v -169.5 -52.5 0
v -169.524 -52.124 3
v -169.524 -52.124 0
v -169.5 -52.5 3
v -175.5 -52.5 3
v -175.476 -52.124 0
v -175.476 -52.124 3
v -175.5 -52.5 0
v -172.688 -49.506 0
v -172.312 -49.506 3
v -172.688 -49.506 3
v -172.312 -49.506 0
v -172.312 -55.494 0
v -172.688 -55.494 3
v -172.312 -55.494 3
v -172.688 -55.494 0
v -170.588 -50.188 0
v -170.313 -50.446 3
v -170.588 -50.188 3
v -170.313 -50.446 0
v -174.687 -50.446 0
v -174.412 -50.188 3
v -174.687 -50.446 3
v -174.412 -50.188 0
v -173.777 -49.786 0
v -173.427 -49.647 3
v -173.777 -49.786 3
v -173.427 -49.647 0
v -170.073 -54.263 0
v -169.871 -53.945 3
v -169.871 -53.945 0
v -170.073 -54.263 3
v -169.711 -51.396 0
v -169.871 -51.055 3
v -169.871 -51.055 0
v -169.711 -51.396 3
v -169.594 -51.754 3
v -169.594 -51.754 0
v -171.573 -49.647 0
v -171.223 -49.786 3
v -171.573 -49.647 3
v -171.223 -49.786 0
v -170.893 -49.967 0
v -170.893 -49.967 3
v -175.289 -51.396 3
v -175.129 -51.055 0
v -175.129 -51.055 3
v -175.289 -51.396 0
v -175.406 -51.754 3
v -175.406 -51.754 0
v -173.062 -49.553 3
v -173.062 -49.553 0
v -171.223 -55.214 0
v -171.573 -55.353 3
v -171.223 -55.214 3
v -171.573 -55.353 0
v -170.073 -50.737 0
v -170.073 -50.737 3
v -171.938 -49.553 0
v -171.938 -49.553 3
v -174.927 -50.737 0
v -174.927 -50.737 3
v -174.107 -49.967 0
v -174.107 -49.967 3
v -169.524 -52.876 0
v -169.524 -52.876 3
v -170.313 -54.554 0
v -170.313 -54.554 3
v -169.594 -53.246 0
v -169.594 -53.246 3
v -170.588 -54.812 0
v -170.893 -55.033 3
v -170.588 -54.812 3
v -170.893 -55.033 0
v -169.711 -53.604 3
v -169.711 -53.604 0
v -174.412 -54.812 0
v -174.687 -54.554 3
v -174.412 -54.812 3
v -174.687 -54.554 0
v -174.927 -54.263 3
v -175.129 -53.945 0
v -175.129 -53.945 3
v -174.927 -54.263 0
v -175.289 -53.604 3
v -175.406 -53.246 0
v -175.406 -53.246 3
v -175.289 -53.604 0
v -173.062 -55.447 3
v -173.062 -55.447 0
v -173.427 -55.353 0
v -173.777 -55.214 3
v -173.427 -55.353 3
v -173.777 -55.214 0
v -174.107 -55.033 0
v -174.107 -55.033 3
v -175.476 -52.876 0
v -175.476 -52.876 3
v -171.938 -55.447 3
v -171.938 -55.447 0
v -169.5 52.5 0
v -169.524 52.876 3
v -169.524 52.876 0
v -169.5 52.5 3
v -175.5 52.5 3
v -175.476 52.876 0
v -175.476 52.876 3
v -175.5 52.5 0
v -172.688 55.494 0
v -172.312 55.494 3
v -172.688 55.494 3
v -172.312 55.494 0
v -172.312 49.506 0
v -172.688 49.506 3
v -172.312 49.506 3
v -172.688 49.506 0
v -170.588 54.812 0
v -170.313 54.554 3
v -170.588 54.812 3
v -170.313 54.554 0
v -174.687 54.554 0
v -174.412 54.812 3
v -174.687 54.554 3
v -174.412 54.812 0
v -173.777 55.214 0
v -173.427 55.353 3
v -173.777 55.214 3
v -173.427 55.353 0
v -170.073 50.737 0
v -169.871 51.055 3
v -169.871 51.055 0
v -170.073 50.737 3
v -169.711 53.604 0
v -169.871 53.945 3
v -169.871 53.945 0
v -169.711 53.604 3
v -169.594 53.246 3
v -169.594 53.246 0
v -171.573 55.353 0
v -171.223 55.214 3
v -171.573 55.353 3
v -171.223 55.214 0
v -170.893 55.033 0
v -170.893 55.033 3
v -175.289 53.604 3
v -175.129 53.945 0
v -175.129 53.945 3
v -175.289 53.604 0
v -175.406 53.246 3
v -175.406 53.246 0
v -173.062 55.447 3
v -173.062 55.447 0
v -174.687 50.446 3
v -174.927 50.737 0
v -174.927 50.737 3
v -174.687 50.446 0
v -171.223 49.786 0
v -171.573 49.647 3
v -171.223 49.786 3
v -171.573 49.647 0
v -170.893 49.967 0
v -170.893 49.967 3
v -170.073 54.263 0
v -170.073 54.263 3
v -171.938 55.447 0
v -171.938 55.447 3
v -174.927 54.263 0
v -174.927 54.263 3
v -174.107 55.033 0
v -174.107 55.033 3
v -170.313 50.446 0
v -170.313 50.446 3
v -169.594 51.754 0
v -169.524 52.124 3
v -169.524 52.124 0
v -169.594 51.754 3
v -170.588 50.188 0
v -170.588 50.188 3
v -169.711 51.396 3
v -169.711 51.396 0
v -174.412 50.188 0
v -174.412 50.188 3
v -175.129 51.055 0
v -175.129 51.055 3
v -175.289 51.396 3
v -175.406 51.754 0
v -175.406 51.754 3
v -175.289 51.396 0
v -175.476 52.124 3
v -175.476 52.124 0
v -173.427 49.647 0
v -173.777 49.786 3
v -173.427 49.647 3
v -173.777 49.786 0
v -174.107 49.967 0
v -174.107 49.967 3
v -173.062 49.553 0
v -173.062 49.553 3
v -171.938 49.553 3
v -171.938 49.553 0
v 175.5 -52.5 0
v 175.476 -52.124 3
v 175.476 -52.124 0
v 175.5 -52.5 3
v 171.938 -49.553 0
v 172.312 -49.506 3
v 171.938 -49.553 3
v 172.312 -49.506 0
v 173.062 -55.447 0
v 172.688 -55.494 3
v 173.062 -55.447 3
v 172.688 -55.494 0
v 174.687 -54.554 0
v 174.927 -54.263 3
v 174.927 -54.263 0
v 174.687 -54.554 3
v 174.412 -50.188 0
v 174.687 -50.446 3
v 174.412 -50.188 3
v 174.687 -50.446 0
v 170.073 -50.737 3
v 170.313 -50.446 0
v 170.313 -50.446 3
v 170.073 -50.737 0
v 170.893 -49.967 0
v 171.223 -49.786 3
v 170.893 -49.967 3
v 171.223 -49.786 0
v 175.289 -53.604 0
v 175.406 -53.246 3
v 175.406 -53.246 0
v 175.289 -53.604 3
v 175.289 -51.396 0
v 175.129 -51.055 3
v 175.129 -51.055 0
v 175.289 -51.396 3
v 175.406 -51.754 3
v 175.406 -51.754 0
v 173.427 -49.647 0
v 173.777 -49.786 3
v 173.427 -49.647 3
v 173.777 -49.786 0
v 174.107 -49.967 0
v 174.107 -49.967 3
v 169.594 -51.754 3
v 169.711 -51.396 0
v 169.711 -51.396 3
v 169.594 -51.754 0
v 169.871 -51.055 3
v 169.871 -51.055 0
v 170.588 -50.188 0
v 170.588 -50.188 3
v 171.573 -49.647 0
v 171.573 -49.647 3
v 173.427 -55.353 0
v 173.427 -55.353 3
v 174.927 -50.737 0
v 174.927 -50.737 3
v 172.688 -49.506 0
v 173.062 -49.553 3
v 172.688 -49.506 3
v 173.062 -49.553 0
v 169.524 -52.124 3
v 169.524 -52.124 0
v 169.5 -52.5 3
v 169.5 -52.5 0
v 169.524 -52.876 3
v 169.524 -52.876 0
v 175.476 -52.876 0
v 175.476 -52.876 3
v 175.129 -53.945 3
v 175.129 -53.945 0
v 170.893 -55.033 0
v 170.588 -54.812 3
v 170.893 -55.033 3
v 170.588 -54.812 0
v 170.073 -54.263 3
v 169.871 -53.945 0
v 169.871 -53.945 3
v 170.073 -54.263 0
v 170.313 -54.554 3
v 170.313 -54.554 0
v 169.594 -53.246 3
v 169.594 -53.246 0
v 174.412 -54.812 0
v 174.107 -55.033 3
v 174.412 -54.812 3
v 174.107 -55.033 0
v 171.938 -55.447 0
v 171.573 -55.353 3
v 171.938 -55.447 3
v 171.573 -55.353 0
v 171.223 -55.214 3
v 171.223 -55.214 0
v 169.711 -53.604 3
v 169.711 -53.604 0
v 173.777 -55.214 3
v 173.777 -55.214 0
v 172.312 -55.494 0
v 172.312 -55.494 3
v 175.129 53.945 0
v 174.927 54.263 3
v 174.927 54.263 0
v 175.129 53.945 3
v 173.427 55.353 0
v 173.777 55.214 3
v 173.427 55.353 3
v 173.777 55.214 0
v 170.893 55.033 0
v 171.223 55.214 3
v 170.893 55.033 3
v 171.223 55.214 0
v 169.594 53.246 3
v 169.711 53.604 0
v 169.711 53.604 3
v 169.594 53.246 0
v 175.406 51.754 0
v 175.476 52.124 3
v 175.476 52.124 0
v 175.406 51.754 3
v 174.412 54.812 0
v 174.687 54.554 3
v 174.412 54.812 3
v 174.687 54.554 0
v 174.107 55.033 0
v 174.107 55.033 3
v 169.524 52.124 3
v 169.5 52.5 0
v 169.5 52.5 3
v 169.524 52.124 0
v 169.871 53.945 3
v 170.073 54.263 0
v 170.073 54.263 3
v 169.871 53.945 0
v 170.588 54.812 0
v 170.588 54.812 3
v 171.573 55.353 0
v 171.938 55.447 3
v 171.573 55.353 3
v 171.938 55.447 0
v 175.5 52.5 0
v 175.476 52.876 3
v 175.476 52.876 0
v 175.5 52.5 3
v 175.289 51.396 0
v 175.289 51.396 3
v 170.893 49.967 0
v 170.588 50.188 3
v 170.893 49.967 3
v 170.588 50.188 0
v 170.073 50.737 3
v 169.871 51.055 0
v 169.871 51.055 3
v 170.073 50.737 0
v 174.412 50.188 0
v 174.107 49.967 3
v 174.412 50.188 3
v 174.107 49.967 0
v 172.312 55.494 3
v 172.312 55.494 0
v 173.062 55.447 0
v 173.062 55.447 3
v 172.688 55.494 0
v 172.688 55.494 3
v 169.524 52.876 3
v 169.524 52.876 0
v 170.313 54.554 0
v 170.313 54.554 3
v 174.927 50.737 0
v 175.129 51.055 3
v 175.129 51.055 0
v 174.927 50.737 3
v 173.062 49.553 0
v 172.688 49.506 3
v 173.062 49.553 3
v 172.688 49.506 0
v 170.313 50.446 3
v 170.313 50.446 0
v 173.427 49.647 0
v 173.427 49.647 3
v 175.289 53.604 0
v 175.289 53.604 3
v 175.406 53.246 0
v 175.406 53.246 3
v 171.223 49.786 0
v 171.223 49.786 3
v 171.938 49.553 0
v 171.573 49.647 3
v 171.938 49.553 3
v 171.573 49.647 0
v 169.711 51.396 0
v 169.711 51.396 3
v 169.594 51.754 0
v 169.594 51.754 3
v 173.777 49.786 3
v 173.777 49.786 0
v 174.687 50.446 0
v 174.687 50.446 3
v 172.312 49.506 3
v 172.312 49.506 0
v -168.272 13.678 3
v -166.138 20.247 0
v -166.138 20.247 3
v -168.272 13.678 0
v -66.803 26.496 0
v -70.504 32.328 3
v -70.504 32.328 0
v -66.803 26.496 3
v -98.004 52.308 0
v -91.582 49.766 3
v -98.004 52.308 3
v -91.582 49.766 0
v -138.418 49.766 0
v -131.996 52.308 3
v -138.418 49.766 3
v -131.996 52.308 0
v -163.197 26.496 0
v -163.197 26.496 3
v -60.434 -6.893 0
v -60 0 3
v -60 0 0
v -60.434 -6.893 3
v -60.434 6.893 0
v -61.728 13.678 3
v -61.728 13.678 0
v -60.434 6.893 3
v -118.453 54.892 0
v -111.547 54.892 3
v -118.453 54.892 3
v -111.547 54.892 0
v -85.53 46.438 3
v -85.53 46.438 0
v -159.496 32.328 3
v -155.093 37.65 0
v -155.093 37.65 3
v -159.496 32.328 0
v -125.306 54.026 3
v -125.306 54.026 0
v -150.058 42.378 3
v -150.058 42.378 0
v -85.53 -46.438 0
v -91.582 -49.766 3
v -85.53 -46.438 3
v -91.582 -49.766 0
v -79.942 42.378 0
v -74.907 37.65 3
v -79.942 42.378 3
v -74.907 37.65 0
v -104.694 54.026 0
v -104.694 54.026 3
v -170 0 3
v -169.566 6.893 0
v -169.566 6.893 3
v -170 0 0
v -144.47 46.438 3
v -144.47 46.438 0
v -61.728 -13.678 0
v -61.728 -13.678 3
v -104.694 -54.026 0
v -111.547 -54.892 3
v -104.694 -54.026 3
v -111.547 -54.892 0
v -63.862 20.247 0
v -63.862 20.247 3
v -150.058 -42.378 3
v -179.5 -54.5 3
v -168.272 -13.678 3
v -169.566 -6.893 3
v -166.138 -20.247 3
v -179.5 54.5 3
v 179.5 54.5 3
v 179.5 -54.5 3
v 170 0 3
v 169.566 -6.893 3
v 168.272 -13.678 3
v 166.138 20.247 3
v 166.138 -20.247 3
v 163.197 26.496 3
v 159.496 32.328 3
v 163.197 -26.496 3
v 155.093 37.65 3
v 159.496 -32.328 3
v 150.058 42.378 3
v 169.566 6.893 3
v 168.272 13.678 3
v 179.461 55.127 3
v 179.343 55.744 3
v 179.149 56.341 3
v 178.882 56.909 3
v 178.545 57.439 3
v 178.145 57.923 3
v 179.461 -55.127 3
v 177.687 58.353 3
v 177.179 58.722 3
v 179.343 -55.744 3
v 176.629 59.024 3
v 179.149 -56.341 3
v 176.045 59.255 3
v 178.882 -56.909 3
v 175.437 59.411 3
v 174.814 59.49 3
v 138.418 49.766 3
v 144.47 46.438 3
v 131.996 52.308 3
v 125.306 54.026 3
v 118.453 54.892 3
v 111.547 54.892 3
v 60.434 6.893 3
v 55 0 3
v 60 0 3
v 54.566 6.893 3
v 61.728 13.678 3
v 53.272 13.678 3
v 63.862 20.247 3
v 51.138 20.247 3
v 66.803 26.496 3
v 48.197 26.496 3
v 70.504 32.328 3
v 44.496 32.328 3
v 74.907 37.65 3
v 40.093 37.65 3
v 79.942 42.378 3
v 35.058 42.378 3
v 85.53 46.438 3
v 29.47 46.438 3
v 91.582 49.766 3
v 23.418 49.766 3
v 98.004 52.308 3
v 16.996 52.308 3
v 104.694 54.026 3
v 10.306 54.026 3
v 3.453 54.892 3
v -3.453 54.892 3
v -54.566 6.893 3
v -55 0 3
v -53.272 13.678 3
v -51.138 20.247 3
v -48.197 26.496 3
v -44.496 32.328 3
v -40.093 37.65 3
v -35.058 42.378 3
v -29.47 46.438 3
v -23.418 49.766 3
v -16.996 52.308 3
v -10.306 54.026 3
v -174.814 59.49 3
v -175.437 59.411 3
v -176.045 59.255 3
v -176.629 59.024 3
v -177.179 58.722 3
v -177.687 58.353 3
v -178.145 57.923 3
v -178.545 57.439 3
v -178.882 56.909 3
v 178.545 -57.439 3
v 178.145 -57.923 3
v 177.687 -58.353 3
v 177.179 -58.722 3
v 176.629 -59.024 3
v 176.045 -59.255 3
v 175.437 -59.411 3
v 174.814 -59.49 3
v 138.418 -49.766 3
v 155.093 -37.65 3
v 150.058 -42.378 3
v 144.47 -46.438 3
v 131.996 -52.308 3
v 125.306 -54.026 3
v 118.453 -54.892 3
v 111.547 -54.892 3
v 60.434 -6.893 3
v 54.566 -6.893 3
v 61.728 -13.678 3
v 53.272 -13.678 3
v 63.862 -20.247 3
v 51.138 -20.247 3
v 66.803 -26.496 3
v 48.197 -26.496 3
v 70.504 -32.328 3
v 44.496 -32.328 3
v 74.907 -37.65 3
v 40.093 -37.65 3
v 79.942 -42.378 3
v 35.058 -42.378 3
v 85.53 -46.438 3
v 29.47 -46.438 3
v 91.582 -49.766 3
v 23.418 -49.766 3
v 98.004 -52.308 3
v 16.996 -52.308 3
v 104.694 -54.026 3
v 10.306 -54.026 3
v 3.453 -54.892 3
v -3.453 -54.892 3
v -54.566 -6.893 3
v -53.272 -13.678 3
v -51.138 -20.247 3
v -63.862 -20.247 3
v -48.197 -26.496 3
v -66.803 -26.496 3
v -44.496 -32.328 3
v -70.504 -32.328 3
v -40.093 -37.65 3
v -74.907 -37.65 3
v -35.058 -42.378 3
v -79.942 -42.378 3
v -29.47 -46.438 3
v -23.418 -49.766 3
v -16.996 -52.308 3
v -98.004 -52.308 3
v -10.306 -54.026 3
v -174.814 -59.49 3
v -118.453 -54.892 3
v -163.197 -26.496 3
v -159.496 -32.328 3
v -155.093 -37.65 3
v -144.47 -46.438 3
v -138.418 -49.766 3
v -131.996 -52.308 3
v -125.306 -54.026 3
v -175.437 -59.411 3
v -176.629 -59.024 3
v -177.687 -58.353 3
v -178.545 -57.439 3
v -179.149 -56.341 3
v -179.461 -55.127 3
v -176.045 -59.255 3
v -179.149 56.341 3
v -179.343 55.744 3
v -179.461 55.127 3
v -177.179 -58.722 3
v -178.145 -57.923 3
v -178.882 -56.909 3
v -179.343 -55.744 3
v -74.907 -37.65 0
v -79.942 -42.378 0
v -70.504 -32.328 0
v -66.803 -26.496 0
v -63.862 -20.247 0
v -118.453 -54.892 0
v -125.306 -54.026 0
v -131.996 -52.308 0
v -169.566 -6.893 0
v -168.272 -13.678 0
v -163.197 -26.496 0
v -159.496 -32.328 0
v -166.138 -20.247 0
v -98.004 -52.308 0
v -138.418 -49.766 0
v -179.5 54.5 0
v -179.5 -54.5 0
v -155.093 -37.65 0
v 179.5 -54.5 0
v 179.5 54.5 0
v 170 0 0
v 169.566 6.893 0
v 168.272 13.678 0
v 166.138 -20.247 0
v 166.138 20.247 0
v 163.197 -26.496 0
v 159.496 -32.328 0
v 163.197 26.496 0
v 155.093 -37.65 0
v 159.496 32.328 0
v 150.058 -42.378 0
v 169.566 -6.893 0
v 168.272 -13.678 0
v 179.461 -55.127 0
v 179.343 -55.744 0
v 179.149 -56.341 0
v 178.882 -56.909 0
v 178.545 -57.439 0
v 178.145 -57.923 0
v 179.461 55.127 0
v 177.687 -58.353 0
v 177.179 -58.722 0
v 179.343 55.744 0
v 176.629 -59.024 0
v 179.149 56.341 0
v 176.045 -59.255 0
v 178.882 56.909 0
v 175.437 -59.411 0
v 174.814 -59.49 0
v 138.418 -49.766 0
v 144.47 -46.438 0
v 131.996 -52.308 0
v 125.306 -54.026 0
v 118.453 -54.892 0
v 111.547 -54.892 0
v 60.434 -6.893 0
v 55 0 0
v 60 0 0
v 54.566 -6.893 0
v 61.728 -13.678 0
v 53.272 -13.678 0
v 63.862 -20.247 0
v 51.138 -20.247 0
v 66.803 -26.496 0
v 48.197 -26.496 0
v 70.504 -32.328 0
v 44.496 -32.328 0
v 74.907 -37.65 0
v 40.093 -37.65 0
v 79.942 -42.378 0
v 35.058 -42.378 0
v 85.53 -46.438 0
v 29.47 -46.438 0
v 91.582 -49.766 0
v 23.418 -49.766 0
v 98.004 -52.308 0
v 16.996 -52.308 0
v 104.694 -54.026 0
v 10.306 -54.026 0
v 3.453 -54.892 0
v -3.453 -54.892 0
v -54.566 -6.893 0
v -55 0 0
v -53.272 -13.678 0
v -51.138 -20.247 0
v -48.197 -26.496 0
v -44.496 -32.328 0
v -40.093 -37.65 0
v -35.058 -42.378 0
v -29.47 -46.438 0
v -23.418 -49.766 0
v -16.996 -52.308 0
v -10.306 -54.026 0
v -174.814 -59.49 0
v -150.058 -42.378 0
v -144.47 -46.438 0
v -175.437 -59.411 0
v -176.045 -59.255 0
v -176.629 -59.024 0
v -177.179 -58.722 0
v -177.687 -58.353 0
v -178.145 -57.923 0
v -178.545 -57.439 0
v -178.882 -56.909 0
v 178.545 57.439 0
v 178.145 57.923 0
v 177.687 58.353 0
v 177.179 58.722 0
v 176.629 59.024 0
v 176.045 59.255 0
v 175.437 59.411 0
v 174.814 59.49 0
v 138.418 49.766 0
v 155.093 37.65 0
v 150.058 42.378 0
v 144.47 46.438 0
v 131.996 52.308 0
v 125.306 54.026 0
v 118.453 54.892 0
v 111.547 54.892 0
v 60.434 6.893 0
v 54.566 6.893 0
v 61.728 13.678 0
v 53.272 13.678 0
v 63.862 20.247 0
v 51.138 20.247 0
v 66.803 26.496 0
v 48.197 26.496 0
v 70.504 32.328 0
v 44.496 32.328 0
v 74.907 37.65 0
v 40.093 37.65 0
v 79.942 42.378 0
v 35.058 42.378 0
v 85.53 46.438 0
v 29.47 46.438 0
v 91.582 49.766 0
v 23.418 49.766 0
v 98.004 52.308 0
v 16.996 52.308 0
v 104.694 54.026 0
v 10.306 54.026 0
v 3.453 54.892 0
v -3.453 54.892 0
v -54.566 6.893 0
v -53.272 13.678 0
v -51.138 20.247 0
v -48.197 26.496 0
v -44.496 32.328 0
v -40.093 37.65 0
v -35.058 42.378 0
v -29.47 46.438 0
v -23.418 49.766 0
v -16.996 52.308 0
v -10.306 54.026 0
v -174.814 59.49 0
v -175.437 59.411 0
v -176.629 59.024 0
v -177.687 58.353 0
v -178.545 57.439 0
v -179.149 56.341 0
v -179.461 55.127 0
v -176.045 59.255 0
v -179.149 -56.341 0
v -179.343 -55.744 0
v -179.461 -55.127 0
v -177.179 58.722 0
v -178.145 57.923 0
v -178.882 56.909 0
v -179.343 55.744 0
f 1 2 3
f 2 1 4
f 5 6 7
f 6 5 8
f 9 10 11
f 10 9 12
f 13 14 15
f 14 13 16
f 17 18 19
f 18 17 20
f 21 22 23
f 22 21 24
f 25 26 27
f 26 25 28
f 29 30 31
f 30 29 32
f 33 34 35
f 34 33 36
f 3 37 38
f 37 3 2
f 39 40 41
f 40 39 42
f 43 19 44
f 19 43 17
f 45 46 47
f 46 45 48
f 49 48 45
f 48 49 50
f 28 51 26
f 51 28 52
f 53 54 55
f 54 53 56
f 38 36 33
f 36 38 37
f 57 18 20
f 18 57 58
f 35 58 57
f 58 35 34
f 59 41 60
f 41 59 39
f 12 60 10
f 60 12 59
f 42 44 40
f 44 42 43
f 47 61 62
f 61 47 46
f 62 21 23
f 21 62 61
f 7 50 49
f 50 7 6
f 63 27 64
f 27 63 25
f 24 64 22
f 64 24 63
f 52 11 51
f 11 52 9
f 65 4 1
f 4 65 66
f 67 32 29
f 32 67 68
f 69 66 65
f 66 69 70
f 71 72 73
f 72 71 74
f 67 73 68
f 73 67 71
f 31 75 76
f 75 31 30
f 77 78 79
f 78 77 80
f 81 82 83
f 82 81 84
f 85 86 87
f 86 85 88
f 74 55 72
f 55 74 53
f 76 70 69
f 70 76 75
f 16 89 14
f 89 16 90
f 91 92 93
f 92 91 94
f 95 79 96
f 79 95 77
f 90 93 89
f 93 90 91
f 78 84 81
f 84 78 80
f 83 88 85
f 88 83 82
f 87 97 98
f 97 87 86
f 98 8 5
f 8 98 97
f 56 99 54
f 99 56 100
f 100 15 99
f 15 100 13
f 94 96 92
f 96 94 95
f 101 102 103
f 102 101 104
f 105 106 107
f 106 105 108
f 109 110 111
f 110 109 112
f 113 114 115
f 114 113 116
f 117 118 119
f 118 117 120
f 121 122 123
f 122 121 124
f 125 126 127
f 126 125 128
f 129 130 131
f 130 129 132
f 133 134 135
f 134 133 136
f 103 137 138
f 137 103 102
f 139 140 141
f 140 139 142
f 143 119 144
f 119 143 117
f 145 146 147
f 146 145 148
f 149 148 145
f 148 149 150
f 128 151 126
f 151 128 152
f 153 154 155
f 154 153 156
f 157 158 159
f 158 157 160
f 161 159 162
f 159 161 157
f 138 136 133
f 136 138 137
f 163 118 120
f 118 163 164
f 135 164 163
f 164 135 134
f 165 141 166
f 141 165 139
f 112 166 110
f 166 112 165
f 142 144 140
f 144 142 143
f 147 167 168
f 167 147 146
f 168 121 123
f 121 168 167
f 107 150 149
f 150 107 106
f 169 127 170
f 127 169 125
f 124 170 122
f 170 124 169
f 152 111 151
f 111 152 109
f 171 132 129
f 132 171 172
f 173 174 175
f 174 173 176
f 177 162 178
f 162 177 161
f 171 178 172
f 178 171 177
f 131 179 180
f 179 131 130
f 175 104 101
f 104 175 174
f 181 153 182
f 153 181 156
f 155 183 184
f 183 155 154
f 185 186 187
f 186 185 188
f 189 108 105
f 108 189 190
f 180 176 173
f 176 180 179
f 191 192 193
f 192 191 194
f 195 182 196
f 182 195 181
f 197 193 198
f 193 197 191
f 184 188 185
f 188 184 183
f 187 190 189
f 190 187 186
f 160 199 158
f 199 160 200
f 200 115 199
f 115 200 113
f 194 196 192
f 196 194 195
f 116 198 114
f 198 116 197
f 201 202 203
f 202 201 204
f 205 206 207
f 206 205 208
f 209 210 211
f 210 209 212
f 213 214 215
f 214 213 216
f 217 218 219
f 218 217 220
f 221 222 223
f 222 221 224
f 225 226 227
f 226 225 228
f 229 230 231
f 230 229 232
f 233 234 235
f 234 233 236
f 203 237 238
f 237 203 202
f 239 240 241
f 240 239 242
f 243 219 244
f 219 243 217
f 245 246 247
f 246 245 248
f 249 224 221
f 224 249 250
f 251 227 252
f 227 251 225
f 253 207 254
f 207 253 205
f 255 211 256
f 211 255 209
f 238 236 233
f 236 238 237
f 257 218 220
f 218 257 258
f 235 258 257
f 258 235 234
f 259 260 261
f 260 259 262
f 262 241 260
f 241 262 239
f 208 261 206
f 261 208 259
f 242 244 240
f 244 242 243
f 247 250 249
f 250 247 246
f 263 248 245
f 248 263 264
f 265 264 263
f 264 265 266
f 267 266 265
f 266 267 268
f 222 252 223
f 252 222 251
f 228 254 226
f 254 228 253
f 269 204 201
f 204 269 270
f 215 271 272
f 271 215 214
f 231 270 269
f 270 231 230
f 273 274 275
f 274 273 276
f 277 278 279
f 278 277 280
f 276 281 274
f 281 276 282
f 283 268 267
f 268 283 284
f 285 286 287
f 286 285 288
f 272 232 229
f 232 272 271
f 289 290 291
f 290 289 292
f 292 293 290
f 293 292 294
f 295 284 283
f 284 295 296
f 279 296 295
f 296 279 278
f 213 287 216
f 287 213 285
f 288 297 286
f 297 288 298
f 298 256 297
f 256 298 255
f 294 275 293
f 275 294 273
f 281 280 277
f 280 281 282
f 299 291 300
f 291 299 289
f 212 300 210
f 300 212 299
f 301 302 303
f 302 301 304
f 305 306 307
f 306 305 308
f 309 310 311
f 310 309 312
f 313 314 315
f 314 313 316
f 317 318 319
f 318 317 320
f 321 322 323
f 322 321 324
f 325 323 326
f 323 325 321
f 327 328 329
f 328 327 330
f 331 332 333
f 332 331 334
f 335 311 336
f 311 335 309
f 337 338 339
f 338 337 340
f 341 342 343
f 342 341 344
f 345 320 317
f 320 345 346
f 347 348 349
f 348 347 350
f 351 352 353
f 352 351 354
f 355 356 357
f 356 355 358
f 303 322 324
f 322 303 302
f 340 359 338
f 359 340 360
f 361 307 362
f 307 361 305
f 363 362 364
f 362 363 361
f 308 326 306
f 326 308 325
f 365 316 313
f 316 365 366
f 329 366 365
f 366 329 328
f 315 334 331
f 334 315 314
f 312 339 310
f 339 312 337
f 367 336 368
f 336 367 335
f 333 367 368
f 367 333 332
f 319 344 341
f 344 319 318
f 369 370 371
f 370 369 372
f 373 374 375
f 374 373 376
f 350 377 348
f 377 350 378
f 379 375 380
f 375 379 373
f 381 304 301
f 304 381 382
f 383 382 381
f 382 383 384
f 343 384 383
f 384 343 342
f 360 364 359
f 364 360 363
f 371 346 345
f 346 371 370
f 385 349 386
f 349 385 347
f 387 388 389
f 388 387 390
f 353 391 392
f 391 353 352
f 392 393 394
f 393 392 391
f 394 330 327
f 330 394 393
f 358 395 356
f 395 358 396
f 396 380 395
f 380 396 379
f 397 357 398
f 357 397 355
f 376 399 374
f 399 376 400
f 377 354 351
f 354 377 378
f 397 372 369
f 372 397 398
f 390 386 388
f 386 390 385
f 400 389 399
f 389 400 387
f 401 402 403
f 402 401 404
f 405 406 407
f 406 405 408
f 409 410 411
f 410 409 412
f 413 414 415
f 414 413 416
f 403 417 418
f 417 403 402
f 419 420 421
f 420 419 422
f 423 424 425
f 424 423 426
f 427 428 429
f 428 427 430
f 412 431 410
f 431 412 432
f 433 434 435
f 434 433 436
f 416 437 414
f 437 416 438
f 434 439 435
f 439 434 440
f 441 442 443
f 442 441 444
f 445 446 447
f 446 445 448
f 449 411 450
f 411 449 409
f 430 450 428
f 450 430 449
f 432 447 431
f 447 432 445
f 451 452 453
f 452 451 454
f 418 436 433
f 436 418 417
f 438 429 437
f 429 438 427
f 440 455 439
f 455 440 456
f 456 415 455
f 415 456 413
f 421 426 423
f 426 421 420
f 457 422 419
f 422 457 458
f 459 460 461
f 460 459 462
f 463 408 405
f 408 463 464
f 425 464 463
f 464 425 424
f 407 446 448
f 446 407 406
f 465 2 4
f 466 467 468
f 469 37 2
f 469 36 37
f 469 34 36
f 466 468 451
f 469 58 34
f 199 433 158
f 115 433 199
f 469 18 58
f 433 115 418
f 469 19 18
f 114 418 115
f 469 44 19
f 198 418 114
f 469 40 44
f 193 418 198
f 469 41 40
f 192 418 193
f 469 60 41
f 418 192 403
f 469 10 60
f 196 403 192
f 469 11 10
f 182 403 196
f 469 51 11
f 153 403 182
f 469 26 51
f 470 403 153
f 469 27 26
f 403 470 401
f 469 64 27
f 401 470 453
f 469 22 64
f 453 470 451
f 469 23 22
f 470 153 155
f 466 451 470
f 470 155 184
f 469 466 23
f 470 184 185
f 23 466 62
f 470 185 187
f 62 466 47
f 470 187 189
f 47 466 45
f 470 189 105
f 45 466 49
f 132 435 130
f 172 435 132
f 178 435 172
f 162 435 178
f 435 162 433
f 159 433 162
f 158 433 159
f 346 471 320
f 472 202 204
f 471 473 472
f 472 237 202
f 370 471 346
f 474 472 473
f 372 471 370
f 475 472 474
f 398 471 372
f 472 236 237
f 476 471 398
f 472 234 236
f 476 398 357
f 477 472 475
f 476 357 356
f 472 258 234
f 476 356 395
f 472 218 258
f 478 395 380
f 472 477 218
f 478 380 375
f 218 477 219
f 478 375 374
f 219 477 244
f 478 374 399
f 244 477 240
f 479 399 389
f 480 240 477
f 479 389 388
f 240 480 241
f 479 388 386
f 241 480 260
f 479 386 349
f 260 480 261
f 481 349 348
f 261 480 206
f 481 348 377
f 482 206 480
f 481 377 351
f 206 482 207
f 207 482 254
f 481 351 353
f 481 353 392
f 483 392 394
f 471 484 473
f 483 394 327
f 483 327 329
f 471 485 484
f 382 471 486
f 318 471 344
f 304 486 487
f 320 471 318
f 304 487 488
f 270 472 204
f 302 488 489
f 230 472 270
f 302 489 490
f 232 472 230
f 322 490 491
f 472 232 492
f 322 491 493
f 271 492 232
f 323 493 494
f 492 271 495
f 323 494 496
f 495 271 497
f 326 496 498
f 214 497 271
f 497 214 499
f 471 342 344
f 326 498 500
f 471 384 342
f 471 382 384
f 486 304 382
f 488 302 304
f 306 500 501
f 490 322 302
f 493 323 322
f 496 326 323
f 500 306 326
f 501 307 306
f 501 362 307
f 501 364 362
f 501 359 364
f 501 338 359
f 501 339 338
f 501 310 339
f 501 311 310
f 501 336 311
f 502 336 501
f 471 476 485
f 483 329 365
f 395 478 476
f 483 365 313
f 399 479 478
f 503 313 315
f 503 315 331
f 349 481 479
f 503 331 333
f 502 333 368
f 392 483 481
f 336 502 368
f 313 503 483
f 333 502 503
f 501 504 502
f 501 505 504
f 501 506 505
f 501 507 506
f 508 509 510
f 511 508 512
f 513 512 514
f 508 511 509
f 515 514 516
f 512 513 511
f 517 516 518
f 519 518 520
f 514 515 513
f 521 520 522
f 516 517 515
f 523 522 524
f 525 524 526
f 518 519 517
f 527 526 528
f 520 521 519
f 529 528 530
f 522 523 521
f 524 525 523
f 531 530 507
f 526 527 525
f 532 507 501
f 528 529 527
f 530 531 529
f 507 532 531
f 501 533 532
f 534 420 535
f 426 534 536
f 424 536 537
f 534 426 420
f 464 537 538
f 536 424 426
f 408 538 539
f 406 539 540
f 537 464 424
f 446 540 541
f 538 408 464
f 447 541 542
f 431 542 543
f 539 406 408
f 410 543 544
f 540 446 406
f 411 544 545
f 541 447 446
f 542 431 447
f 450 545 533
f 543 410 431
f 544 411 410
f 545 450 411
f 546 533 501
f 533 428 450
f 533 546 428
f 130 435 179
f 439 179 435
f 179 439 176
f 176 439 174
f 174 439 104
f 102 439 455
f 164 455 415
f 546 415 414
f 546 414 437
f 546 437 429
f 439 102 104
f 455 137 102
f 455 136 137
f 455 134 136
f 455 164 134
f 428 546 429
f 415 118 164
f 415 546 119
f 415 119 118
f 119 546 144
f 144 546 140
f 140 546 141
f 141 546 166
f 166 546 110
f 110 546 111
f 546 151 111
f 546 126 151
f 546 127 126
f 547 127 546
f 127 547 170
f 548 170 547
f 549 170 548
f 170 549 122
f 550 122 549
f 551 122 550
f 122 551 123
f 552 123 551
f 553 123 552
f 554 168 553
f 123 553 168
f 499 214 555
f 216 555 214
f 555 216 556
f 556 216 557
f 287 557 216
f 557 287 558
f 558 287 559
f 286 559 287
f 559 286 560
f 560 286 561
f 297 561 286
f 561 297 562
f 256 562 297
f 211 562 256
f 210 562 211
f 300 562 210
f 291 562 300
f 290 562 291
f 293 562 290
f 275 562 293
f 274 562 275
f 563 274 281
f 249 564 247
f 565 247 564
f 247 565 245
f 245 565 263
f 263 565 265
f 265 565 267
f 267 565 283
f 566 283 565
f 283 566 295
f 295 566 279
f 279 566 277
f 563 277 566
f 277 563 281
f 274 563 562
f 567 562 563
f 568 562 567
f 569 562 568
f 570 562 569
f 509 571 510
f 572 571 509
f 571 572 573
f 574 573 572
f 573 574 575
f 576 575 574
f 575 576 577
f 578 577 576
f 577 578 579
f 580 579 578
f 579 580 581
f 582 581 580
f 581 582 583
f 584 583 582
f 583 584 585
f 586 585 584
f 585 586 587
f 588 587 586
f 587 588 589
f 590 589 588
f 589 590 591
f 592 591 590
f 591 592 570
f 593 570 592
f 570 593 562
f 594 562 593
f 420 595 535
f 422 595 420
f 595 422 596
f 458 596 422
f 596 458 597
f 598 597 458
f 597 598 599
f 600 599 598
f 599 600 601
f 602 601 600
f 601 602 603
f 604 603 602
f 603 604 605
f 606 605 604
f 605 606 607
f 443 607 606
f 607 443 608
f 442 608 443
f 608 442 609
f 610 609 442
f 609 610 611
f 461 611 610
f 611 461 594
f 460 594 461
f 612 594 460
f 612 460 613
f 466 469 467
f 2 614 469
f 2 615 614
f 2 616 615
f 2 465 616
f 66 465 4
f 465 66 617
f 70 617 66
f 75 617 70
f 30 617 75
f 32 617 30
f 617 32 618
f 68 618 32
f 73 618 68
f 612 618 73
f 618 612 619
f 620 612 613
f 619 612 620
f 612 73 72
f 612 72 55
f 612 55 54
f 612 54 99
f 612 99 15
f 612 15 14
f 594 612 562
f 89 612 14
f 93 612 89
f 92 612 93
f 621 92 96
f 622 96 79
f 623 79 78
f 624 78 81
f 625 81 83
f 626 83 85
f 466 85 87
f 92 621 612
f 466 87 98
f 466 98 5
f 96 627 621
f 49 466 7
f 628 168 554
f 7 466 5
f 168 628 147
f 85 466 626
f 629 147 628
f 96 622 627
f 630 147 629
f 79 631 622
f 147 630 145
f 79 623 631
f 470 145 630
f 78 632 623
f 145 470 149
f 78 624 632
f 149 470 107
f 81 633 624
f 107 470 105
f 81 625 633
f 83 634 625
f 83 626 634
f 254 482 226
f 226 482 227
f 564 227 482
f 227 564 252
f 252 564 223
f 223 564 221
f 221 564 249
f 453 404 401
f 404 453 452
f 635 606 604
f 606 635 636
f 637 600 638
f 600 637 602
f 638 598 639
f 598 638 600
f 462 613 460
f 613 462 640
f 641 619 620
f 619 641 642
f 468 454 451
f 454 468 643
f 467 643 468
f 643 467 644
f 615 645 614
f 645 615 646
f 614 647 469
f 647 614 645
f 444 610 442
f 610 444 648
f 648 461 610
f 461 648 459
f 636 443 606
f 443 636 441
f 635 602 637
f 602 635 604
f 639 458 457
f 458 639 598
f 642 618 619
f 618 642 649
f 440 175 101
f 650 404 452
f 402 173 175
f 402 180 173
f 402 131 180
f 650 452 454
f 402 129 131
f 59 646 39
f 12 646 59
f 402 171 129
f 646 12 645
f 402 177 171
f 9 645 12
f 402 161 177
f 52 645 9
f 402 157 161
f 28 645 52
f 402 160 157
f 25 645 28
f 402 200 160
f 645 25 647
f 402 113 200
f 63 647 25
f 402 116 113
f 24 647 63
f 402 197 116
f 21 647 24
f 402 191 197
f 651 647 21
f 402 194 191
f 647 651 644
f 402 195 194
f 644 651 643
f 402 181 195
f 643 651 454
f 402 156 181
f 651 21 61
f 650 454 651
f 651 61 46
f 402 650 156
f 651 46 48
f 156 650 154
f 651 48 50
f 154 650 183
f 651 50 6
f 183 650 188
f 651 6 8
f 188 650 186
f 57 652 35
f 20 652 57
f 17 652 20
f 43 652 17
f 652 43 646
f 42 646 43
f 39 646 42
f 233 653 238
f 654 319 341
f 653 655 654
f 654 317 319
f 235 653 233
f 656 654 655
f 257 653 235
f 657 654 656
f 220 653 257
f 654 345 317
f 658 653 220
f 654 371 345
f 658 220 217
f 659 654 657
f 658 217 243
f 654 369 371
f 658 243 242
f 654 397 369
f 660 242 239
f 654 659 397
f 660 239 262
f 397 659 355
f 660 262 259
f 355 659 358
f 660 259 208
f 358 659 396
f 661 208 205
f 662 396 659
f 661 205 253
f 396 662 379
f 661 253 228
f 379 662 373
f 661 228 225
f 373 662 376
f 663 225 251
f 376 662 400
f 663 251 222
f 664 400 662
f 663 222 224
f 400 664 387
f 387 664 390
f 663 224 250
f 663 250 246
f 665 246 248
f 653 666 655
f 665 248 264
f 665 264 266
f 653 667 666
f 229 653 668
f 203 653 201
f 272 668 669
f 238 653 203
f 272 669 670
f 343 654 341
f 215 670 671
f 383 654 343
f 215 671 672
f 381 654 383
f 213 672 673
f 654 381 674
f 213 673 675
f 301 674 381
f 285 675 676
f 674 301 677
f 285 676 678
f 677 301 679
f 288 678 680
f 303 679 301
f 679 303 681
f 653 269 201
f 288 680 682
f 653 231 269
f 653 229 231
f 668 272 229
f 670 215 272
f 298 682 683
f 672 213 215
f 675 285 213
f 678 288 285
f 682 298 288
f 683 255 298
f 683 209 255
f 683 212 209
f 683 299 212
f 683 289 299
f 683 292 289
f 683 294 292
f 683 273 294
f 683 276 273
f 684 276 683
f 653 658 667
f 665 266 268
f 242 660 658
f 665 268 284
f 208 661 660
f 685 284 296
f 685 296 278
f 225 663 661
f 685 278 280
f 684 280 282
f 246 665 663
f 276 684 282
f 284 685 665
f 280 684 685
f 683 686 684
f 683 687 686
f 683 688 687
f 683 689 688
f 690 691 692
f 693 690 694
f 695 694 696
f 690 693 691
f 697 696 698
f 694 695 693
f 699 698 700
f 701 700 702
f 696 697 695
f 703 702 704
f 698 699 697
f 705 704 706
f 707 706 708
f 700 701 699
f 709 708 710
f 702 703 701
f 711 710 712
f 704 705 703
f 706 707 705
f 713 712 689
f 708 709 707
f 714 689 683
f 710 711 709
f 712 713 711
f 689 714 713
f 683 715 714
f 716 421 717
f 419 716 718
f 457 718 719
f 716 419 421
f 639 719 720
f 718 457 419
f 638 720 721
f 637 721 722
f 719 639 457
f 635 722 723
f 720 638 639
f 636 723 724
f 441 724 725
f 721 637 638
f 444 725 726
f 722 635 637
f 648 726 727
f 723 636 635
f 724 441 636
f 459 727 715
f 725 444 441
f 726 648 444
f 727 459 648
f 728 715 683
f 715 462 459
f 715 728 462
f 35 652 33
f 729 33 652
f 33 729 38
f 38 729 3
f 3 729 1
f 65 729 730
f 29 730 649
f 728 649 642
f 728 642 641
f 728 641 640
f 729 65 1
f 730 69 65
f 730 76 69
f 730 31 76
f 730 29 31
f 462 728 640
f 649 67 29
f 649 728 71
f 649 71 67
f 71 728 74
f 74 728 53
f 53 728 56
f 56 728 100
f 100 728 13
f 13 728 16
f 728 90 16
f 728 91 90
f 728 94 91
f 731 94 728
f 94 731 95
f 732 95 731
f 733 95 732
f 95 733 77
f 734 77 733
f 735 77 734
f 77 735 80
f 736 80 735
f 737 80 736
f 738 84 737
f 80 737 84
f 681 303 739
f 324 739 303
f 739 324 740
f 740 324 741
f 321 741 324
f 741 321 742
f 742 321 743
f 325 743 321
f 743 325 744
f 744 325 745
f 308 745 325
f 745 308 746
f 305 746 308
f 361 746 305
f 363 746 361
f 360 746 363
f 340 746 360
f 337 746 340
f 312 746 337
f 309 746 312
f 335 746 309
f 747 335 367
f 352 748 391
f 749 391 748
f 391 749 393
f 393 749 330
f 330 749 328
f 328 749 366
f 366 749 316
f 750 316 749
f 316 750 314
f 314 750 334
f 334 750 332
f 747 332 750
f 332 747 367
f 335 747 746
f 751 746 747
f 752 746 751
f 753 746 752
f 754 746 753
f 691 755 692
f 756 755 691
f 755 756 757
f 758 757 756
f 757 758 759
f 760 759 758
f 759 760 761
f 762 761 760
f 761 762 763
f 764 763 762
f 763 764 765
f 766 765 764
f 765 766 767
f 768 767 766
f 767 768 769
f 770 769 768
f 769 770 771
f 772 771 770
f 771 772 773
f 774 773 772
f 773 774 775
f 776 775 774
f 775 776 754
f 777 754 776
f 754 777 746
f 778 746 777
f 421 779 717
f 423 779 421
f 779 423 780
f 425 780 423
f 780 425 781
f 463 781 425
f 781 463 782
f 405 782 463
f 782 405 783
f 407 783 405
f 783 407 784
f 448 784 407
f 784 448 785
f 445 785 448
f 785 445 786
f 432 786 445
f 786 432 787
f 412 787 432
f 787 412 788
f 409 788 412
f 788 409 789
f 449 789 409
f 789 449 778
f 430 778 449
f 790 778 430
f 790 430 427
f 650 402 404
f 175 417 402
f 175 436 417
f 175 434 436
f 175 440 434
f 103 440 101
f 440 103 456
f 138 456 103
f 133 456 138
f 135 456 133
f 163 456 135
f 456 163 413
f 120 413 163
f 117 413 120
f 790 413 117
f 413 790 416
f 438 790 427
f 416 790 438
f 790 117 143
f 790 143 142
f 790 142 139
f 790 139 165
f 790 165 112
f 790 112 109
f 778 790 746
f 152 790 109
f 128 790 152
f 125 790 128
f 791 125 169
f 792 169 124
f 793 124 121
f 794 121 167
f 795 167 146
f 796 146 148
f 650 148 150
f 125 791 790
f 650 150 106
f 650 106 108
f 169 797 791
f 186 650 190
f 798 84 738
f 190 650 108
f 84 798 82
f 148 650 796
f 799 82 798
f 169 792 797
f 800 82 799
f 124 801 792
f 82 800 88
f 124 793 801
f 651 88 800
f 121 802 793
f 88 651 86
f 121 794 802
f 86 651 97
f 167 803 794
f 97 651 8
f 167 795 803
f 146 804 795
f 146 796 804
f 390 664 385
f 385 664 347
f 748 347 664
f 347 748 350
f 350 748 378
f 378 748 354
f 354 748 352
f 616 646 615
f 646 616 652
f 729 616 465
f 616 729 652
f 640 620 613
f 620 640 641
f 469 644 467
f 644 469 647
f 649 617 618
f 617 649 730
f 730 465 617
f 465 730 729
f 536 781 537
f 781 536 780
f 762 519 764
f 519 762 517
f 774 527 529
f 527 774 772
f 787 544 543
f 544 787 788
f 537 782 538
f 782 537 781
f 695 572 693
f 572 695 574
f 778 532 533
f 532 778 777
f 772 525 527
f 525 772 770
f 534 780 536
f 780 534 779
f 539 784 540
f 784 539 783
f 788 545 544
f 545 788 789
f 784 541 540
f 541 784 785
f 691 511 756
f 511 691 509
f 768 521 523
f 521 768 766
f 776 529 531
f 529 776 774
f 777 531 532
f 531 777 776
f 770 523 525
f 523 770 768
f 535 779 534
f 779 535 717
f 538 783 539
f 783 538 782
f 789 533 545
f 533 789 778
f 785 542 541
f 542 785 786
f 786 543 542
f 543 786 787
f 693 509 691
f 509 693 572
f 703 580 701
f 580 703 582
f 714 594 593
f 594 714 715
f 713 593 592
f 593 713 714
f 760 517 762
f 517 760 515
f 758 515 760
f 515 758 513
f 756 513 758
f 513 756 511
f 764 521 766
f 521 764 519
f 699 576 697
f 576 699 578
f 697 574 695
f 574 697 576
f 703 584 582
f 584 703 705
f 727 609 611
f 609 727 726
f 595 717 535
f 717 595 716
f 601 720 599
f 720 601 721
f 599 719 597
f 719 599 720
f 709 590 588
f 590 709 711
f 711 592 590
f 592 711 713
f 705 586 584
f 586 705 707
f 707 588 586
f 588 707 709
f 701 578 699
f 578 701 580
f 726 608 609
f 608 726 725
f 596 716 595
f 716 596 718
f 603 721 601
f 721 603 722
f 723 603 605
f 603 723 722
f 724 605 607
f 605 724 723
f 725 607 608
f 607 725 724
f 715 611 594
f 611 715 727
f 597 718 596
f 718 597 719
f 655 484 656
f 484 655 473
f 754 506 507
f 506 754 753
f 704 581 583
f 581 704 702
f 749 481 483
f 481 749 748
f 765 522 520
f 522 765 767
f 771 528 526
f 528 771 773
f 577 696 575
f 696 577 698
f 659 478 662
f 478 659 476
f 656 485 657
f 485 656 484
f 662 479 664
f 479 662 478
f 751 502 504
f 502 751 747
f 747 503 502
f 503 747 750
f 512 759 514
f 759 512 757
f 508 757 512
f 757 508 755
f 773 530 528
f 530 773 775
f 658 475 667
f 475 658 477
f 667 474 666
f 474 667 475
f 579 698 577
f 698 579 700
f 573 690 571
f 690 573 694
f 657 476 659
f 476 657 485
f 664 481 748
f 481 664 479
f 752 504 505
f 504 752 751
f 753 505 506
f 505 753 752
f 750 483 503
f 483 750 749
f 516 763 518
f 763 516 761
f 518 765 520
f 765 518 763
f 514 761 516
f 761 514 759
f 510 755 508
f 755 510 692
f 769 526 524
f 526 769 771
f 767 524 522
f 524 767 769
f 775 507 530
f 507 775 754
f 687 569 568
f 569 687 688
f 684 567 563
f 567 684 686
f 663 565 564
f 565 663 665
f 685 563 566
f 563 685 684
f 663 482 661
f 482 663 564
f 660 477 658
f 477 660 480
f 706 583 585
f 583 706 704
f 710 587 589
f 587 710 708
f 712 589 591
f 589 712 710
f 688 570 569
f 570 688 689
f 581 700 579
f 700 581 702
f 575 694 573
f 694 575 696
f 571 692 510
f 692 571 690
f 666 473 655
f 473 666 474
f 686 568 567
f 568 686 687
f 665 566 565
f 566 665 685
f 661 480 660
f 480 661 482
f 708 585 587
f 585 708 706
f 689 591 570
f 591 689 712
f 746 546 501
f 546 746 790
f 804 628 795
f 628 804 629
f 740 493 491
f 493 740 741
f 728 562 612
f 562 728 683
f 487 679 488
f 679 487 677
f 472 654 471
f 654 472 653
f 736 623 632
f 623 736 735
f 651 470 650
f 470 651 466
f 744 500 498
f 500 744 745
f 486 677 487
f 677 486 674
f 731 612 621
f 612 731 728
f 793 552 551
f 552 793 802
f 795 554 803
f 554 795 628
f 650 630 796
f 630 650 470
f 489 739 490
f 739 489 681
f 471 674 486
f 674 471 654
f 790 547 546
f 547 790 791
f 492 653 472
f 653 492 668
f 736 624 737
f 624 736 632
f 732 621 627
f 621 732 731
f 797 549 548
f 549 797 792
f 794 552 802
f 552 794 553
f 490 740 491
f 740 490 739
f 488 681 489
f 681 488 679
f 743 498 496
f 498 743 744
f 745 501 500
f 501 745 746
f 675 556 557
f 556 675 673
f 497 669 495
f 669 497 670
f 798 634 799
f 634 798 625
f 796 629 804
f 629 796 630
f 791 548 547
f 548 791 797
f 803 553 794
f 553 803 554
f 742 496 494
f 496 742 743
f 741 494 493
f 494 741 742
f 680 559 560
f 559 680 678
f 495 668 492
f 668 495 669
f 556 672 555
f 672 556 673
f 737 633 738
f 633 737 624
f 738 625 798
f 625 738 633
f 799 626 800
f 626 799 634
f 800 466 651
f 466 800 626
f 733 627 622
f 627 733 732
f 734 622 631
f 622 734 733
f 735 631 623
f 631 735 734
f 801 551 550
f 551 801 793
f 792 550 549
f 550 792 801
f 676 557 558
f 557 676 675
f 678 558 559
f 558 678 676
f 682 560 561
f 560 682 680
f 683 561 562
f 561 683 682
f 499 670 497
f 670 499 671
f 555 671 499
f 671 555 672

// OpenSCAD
$fn = 50;


difference() {
	union() {
		hull() {
			translate(v = [-174.5000000000, 54.5000000000, 0]) {
				cylinder(h = 3, r = 5);
			}
			translate(v = [174.5000000000, 54.5000000000, 0]) {
				cylinder(h = 3, r = 5);
			}
			translate(v = [-174.5000000000, -54.5000000000, 0]) {
				cylinder(h = 3, r = 5);
			}
			translate(v = [174.5000000000, -54.5000000000, 0]) {
				cylinder(h = 3, r = 5);
			}
		}
	}
	union() {
		#translate(v = [-172.5000000000, -52.5000000000, -100.0000000000]) {
			cylinder(h = 200, r = 3.0000000000);
		}
		#translate(v = [-172.5000000000, 52.5000000000, -100.0000000000]) {
			cylinder(h = 200, r = 3.0000000000);
		}
		#translate(v = [172.5000000000, -52.5000000000, -100.0000000000]) {
			cylinder(h = 200, r = 3.0000000000);
		}
		#translate(v = [172.5000000000, 52.5000000000, -100.0000000000]) {
			cylinder(h = 200, r = 3.0000000000);
		}
		#translate(v = [-115.0000000000, 0, 0]) {
			cylinder(h = 3, r = 55.0000000000);
		}
		#cylinder(h = 3, r = 55.0000000000);
		#translate(v = [115.0000000000, 0, 0]) {
			cylinder(h = 3, r = 55.0000000000);
		}
	}
}
